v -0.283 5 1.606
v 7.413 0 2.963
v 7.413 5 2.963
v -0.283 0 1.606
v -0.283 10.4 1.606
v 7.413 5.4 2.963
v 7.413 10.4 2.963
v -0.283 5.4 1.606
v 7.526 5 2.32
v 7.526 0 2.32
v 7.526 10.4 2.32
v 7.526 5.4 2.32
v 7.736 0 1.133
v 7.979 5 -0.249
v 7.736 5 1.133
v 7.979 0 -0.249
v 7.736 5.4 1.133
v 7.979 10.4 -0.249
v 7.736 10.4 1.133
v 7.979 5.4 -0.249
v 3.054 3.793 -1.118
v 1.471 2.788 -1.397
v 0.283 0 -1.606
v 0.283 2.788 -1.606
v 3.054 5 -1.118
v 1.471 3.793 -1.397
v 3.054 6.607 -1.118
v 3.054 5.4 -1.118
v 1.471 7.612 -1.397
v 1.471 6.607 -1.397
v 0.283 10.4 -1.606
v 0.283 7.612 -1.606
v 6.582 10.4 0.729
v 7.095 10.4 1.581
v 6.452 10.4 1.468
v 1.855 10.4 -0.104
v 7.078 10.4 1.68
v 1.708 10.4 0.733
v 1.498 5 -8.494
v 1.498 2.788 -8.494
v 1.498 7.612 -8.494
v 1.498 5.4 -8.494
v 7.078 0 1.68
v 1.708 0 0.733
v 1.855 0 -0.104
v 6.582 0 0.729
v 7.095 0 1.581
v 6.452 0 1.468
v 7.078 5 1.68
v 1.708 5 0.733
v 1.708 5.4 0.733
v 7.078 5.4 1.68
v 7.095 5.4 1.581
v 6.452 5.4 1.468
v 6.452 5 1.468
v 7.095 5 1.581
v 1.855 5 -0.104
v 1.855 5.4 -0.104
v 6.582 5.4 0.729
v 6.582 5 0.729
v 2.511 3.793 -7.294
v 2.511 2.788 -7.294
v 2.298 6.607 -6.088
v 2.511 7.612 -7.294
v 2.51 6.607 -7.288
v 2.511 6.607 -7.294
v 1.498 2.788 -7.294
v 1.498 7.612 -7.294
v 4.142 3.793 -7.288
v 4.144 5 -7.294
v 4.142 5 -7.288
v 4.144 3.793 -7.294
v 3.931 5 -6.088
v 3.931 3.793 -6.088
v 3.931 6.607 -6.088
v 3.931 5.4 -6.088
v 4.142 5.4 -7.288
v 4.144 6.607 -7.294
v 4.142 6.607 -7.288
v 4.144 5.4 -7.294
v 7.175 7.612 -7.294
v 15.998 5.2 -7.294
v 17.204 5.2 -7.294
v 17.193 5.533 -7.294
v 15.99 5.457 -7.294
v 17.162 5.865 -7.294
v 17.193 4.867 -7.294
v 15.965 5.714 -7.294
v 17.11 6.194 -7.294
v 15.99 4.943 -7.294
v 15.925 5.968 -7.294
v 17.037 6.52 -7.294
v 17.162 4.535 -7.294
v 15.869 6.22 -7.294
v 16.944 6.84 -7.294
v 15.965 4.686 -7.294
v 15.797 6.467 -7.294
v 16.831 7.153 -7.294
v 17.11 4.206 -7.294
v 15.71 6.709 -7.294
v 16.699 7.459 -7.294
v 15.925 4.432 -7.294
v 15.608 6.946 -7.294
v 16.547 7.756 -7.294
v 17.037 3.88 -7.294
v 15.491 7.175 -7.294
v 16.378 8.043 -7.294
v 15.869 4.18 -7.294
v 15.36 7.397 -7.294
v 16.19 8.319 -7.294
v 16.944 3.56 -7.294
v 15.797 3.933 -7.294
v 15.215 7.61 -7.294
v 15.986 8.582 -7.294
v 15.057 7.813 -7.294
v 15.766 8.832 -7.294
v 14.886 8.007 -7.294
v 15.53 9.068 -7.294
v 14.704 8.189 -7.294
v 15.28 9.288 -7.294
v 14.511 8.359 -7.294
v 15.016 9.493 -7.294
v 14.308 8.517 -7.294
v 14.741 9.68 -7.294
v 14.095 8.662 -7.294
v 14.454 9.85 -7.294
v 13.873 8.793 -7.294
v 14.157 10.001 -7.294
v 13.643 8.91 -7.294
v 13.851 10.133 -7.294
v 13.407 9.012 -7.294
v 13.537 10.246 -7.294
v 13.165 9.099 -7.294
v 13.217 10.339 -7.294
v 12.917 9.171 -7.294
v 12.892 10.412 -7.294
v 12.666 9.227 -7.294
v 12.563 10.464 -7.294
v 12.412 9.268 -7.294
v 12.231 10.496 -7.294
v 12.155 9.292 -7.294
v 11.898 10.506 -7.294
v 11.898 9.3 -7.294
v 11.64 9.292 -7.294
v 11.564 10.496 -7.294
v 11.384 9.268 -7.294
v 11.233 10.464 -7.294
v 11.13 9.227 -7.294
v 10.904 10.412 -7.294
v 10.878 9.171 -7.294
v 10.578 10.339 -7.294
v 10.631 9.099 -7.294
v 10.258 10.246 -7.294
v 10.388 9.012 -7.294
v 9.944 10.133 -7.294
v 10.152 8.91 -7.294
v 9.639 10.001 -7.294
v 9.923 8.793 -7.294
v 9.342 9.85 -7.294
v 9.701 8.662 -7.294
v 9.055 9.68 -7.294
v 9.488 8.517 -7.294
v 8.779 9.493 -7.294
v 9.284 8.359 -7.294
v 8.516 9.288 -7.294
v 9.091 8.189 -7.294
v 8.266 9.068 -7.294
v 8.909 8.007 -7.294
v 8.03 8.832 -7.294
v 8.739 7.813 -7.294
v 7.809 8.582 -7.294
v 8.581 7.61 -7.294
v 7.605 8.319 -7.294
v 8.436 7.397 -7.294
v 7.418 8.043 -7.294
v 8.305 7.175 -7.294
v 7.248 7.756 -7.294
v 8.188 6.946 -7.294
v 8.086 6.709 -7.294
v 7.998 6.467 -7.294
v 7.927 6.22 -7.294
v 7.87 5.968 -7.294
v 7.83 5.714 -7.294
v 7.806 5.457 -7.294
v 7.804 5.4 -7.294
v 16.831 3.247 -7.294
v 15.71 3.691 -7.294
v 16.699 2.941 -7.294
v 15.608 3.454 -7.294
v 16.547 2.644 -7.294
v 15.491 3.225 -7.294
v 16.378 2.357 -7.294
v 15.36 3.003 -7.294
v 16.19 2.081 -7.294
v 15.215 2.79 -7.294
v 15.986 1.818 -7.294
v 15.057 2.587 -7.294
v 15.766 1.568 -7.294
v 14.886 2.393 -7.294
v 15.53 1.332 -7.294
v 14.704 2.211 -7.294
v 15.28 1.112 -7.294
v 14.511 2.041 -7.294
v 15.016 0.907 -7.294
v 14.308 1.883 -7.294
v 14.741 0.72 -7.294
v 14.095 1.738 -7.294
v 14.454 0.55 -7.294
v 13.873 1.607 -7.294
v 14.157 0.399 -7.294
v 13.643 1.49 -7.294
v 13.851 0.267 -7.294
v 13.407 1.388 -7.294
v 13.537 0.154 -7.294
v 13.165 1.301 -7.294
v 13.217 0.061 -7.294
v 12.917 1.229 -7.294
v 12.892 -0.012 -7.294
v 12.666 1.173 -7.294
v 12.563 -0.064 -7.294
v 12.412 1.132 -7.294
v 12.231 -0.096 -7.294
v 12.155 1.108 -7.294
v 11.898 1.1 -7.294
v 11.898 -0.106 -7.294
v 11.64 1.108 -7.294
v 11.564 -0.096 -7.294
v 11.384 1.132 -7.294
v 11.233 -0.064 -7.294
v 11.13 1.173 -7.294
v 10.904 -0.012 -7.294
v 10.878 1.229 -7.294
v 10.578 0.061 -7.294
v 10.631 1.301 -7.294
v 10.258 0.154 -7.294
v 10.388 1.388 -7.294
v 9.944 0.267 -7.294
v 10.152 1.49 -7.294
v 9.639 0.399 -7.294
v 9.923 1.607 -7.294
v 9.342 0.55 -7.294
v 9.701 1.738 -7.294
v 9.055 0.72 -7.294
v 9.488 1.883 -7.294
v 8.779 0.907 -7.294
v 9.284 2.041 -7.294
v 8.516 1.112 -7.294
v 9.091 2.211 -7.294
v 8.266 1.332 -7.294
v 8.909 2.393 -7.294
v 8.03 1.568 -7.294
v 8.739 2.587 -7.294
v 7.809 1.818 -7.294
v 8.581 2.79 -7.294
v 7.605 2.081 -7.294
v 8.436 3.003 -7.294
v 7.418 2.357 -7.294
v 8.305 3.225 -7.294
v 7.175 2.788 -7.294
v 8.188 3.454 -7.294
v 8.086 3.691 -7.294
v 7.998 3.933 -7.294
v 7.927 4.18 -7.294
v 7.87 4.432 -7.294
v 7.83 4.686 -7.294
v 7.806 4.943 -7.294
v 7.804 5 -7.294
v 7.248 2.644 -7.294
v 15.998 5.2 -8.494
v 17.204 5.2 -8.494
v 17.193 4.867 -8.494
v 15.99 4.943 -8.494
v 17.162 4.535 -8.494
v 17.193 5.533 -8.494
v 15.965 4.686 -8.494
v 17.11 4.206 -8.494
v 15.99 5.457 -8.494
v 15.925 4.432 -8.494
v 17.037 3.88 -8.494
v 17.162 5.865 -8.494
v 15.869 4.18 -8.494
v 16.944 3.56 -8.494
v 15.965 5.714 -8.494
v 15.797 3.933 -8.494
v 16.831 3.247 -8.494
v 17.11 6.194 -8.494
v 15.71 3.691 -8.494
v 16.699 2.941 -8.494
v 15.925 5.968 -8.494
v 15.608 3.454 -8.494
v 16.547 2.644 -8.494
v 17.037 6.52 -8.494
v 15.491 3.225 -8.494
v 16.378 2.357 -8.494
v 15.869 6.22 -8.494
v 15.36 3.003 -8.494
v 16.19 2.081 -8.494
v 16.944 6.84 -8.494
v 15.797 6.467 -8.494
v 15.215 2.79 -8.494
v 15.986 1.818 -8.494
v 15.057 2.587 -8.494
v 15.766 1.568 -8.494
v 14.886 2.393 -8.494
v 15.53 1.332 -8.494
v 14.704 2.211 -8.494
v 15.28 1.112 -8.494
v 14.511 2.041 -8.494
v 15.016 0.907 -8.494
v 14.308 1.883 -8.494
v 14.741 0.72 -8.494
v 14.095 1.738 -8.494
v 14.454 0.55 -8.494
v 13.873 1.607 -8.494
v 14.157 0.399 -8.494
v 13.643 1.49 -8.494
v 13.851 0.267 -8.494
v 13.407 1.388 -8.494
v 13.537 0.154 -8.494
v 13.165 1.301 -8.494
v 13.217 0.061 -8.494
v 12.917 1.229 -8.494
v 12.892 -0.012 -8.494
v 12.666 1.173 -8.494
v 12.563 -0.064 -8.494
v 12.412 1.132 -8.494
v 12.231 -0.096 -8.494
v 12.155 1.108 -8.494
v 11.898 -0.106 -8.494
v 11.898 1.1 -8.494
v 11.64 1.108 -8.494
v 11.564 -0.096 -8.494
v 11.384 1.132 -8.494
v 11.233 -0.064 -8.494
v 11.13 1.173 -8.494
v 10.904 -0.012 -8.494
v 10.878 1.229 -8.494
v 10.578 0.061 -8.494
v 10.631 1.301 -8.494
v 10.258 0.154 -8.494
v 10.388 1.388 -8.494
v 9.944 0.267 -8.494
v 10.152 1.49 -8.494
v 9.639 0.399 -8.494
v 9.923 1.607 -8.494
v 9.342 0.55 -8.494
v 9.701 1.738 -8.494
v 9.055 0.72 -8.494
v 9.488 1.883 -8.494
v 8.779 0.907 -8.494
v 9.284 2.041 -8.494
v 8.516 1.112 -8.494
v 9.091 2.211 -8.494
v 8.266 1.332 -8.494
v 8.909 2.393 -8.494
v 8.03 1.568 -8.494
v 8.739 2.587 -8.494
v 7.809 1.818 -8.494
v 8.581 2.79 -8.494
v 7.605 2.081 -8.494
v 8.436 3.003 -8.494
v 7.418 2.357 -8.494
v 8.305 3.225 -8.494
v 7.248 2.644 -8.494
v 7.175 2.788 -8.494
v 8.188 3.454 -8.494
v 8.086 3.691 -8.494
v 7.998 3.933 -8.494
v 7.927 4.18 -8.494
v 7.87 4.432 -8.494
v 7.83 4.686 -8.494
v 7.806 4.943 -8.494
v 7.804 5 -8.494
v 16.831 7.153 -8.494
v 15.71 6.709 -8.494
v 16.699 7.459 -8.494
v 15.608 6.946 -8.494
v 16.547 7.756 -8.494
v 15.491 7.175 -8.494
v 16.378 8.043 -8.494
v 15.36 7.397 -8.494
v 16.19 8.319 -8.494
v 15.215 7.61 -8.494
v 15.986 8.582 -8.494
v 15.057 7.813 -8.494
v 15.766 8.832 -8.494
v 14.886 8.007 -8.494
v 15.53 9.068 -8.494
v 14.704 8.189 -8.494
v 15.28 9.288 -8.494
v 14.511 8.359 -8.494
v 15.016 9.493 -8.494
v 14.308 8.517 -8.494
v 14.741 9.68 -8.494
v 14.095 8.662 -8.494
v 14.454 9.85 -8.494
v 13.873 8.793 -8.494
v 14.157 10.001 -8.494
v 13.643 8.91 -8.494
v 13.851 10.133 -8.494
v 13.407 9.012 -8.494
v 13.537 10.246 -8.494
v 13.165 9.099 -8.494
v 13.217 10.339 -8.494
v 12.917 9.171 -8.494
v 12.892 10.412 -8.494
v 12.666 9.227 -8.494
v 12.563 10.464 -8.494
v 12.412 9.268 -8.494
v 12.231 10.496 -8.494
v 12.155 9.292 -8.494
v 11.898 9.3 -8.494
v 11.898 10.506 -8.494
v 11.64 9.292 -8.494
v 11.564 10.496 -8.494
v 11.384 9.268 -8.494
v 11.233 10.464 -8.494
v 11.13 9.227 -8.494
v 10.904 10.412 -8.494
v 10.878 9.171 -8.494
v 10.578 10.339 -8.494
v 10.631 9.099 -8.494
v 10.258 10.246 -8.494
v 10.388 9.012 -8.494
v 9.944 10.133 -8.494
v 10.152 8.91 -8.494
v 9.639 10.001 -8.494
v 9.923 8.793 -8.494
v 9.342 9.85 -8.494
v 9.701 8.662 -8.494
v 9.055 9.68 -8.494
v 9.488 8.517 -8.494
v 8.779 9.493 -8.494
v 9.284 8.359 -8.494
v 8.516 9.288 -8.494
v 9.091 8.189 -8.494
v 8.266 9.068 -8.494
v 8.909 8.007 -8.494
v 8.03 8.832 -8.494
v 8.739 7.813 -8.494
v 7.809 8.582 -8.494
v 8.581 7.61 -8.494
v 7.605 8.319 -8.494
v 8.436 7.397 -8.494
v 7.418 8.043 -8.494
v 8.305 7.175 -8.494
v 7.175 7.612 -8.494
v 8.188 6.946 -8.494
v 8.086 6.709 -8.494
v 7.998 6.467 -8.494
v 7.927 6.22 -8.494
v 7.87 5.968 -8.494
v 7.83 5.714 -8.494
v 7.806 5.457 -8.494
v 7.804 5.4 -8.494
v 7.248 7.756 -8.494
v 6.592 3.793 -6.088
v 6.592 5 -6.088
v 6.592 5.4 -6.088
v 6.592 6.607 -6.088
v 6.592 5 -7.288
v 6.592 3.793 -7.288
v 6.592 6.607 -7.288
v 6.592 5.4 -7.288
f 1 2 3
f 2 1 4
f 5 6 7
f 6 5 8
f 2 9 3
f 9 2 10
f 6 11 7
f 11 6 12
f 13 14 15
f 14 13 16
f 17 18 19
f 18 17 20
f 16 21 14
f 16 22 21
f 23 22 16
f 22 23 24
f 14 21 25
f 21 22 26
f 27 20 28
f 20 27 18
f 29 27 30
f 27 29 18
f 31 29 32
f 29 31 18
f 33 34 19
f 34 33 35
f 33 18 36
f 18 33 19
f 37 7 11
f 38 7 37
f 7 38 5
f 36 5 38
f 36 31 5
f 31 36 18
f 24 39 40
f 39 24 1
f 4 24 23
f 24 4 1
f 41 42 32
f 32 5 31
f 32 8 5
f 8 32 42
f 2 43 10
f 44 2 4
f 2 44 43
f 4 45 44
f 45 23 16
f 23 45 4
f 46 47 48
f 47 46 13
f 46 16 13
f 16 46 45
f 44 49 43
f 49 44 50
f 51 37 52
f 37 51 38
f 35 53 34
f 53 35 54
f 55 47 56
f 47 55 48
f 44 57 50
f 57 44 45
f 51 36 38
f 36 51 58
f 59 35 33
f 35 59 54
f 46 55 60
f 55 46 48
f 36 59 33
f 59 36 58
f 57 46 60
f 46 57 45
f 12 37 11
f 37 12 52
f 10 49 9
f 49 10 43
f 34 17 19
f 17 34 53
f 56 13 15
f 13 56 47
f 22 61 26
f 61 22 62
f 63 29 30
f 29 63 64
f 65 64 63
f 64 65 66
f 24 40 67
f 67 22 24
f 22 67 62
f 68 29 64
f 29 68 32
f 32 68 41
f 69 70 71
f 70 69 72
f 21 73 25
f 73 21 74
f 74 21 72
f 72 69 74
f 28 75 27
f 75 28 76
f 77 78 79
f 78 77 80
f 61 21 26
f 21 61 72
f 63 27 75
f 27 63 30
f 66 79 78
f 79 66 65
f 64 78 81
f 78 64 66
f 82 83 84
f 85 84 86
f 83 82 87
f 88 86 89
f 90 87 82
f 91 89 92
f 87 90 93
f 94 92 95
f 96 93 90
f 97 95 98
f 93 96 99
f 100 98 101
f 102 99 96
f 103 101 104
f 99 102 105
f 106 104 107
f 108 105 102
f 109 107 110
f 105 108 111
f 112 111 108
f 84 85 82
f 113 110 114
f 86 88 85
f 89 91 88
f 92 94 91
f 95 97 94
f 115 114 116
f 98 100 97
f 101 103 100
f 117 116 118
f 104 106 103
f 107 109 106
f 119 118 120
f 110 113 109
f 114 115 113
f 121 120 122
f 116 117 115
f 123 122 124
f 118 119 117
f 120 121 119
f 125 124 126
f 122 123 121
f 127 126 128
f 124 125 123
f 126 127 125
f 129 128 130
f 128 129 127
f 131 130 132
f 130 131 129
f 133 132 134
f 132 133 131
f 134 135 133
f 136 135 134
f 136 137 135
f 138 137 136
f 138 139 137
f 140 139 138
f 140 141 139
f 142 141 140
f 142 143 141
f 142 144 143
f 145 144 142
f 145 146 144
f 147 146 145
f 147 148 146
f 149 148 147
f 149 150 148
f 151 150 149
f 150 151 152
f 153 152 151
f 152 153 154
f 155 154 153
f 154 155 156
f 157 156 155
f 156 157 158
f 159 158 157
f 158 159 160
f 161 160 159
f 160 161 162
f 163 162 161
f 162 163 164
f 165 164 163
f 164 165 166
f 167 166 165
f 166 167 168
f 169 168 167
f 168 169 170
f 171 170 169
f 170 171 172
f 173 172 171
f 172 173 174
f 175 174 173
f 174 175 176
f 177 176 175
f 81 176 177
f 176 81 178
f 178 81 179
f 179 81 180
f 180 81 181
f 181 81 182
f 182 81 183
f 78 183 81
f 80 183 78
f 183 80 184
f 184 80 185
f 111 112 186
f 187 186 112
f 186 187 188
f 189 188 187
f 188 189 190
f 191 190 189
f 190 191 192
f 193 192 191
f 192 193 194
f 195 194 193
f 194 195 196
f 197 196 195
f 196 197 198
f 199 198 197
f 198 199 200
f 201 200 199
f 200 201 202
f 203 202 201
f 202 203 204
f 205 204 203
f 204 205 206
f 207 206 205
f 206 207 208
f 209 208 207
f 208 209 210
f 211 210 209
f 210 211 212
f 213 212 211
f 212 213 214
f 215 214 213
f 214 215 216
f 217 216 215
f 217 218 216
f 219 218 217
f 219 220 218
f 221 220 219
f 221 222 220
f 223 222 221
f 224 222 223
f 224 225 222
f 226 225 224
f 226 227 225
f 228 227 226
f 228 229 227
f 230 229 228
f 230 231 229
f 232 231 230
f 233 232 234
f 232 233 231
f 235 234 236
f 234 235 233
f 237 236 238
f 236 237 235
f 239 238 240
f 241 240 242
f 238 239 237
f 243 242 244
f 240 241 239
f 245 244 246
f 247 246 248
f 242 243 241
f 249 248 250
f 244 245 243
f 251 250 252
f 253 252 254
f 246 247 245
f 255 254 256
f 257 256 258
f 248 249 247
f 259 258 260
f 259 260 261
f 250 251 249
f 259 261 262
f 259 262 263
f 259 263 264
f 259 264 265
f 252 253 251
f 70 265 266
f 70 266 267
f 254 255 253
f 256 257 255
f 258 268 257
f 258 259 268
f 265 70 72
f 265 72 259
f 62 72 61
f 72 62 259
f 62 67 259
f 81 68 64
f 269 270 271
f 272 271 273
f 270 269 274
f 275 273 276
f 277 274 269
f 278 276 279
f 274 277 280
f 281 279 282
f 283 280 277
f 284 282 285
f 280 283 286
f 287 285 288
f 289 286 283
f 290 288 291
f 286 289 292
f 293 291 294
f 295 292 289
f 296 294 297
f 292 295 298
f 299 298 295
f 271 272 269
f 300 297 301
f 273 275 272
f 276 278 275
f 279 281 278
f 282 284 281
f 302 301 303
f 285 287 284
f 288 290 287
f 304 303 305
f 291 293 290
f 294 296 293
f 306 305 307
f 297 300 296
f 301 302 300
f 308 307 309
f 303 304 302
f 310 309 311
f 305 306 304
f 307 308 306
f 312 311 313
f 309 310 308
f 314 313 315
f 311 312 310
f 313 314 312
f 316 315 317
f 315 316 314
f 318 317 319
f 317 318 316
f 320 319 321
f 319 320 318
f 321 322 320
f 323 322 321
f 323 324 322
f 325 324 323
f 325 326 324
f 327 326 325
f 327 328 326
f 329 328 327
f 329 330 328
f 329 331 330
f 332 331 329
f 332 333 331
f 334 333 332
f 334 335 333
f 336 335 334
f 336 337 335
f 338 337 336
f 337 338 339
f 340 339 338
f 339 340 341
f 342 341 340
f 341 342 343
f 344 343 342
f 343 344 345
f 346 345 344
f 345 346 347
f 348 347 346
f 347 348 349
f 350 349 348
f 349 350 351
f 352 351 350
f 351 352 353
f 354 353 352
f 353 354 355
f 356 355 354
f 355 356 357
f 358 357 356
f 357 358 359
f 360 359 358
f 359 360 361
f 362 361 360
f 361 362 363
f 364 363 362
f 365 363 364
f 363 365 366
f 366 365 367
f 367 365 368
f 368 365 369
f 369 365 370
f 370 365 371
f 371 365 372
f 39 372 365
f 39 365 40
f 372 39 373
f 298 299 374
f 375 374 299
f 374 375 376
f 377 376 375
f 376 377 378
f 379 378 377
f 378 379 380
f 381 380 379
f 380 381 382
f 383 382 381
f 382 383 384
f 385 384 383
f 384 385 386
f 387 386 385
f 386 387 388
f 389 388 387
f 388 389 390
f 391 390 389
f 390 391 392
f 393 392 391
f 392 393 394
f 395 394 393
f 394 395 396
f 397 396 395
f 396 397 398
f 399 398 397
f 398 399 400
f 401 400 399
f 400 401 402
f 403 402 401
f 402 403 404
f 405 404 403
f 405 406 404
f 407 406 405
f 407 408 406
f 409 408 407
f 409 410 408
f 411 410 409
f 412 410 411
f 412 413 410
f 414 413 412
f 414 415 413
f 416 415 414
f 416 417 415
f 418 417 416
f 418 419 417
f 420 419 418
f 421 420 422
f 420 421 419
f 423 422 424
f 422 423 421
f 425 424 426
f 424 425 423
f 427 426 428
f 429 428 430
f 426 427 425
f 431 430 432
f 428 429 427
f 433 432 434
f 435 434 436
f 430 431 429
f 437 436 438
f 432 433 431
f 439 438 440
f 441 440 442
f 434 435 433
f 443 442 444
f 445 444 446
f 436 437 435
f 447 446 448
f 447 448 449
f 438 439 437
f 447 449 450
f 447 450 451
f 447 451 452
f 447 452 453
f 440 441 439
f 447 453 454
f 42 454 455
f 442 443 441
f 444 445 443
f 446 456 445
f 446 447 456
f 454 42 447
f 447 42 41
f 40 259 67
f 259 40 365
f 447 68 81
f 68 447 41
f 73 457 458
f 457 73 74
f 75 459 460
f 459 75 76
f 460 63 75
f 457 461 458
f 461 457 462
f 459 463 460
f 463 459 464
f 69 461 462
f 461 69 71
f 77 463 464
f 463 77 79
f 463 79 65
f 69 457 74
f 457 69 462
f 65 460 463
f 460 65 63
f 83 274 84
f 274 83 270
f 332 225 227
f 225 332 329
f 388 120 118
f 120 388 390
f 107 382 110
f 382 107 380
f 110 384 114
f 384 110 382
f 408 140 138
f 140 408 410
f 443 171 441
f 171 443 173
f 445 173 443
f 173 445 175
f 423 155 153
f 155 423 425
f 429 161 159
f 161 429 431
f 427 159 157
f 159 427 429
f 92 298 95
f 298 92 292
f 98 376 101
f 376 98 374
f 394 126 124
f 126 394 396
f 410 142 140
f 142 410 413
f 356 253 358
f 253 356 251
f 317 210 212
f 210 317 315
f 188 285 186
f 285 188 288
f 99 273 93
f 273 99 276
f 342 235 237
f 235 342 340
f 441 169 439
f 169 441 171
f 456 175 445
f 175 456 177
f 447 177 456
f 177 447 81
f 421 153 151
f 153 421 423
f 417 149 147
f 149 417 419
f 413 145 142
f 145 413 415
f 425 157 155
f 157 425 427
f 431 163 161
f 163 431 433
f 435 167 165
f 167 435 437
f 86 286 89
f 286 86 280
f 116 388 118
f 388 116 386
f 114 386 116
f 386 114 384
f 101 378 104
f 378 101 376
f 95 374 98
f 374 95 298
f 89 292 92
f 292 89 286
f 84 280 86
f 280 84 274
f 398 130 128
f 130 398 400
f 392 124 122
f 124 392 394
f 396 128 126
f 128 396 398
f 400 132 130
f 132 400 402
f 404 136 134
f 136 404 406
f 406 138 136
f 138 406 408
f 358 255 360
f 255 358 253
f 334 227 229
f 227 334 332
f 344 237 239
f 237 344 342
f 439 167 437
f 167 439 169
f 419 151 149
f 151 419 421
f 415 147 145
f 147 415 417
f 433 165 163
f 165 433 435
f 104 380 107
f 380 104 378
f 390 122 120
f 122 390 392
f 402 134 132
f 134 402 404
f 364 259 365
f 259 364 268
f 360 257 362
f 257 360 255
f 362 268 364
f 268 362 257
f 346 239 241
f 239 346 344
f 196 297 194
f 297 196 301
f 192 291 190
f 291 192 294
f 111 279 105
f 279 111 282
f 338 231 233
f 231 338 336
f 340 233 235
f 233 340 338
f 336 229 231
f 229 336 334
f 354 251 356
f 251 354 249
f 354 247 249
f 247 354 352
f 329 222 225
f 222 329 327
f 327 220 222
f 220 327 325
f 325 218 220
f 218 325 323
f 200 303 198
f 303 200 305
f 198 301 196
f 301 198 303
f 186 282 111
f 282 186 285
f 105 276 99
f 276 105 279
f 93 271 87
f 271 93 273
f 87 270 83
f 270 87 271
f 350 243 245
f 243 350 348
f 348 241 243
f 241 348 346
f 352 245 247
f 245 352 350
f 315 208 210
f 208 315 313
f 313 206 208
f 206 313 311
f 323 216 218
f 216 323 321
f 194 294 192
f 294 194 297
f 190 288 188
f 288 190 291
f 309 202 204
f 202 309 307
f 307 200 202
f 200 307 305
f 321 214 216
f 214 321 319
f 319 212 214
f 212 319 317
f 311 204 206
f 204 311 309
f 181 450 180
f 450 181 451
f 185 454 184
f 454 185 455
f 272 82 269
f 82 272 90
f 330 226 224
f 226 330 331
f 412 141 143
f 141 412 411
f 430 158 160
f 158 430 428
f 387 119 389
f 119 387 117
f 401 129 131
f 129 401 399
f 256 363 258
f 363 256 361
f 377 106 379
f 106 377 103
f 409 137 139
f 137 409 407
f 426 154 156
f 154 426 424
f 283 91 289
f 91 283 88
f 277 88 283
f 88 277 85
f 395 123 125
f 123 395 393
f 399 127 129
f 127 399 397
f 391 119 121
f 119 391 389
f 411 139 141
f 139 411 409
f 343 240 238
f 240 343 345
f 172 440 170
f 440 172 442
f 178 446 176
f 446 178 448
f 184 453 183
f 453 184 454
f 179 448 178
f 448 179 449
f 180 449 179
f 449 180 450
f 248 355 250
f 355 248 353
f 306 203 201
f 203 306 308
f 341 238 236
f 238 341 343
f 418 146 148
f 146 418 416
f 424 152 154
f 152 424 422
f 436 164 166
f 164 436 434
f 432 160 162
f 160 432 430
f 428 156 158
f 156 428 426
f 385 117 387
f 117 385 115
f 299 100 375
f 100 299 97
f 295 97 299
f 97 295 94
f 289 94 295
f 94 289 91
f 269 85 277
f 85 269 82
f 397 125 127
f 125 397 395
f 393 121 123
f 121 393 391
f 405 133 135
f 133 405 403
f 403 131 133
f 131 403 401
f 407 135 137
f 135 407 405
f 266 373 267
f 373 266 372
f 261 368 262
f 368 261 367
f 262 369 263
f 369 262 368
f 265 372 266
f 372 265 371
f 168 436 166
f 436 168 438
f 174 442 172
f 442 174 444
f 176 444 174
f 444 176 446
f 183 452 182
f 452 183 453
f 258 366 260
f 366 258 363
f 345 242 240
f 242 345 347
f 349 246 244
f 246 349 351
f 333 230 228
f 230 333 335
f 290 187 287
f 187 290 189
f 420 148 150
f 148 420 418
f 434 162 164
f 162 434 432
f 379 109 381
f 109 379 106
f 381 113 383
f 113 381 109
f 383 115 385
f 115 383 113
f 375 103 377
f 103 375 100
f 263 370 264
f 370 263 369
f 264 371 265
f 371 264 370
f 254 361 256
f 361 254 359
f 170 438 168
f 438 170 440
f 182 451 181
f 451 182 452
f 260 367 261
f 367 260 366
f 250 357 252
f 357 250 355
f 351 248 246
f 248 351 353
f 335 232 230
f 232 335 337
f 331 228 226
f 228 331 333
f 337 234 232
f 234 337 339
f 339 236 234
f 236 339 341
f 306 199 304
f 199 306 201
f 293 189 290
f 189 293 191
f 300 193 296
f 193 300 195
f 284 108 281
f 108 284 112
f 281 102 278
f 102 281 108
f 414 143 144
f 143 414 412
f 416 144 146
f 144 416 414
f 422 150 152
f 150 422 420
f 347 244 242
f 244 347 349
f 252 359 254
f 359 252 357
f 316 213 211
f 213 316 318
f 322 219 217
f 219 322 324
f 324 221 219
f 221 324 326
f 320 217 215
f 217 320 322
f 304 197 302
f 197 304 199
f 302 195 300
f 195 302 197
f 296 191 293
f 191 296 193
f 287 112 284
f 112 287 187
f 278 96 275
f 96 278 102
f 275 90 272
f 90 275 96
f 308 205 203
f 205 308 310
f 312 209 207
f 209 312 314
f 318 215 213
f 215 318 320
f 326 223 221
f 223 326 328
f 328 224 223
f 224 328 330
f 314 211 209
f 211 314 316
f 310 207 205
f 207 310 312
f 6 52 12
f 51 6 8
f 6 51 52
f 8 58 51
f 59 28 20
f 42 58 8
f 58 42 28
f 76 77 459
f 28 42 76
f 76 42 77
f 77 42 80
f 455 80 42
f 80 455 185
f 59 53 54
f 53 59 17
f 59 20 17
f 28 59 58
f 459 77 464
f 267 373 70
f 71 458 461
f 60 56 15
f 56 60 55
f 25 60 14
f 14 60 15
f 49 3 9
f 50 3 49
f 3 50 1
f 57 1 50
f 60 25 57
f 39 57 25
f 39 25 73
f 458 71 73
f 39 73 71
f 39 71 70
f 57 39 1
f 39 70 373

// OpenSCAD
$fn = 100;

THE_BLESSED_NUMBER = 0.402;

function bless(x) = floor(x / THE_BLESSED_NUMBER) * THE_BLESSED_NUMBER;

slit = 0.4;

angle = 10;

// intersection(){
    rotate([0, 90 - angle, 0])
    main(
        lens_d = 8.2,
        lens_l = 1.2,
        lens_h = 10.4,

        arm_l = 8.2,
        arm_h = bless(3),

        grip_l = 0.85,
        grip_h = 4.8,
        grip_w = 10 + slit,

        angle     = angle,
        thickness = bless(1.5),
        slit      = slit
    );

    // translate([-20, -20, -10])
    //     cube(size=[100, 100, 2.95], center=false);
// }

module main() {
    difference() {
        union() {
            translate([-grip_l / 2 - thickness, 0, 0])
                grip(
                    l = grip_l,
                    w = grip_w,
                    h = grip_h,
                    t = thickness
                );

            arm_w = bless(thickness * 4 + slit);

            translate([grip_l / 2, (grip_w - arm_w) / 2, 0])
                arm(
                    l      = arm_l,
                    w      = arm_w,
                    h      = arm_h,
                    slit_w = slit,
                    t      = thickness
                );

            translate([arm_l + grip_l / 2, (grip_w - lens_d - thickness * 2) / 2, 0])
            rotate([0, angle, 0])
            translate([-lens_l, 0, 0])
                lens_compartment(
                    d = lens_d,
                    l = lens_l,
                    h = lens_h,
                    t = thickness,
                    arm_w = arm_w,
                    slit_w = slit
                );
        }

        translate([-thickness - grip_l, (grip_w - slit) / 2, -1])
            cube(size=[arm_l * 2, slit, lens_h]);
    }
}

module grip() {
    full_l = l + t * 2;
    full_h = h + t * 2.5;
    slit = 0.1;

    difference() {
        cube(size=[full_l, w, full_h]);

        translate([t, -1 , t * 1.5])
            cube(size=[slit, w + 2, full_h]);

        translate([(full_l - l) / 2, -1 , t * 1.5])
            cube(size=[l, w + 2, h]);

        cut_side = sqrt(2 * t * t);

        translate([slit / 2, -1 , full_h + t / 2])
        rotate([0, 45, 0])
            cube(size=[cut_side, w + 2, cut_side]);
    }
}

module arm() {
    reinforsment_w = bless((w - slit_w) / 1.5);

    cube(size=[l, w, t]);

    translate([0, (w -  reinforsment_w) / 2, 0])
        cube(size=[l, reinforsment_w, h]);
}

module lens_compartment() {
    spacer_h = 2;

    full_w = d + t * 2;
    reinforsment_w = bless((arm_w - slit_w) / 1.5);

    difference() {
        union() {
            translate([0, (full_w - arm_w) / 2, 0])
                cube([l, arm_w, h]);

            translate([-t, (full_w - reinforsment_w) / 2, 0])
                cube([l, reinforsment_w, h - d / 2 - t]);

            translate([0, full_w / 2, h])
            rotate([0, 90, 0])
                cylinder(r=full_w / 2, h=l);
        }

        translate([-1, full_w / 2, h])
        rotate([0, 90, 0])
            cylinder(r=d / 2, h=l+2);
    }
}
